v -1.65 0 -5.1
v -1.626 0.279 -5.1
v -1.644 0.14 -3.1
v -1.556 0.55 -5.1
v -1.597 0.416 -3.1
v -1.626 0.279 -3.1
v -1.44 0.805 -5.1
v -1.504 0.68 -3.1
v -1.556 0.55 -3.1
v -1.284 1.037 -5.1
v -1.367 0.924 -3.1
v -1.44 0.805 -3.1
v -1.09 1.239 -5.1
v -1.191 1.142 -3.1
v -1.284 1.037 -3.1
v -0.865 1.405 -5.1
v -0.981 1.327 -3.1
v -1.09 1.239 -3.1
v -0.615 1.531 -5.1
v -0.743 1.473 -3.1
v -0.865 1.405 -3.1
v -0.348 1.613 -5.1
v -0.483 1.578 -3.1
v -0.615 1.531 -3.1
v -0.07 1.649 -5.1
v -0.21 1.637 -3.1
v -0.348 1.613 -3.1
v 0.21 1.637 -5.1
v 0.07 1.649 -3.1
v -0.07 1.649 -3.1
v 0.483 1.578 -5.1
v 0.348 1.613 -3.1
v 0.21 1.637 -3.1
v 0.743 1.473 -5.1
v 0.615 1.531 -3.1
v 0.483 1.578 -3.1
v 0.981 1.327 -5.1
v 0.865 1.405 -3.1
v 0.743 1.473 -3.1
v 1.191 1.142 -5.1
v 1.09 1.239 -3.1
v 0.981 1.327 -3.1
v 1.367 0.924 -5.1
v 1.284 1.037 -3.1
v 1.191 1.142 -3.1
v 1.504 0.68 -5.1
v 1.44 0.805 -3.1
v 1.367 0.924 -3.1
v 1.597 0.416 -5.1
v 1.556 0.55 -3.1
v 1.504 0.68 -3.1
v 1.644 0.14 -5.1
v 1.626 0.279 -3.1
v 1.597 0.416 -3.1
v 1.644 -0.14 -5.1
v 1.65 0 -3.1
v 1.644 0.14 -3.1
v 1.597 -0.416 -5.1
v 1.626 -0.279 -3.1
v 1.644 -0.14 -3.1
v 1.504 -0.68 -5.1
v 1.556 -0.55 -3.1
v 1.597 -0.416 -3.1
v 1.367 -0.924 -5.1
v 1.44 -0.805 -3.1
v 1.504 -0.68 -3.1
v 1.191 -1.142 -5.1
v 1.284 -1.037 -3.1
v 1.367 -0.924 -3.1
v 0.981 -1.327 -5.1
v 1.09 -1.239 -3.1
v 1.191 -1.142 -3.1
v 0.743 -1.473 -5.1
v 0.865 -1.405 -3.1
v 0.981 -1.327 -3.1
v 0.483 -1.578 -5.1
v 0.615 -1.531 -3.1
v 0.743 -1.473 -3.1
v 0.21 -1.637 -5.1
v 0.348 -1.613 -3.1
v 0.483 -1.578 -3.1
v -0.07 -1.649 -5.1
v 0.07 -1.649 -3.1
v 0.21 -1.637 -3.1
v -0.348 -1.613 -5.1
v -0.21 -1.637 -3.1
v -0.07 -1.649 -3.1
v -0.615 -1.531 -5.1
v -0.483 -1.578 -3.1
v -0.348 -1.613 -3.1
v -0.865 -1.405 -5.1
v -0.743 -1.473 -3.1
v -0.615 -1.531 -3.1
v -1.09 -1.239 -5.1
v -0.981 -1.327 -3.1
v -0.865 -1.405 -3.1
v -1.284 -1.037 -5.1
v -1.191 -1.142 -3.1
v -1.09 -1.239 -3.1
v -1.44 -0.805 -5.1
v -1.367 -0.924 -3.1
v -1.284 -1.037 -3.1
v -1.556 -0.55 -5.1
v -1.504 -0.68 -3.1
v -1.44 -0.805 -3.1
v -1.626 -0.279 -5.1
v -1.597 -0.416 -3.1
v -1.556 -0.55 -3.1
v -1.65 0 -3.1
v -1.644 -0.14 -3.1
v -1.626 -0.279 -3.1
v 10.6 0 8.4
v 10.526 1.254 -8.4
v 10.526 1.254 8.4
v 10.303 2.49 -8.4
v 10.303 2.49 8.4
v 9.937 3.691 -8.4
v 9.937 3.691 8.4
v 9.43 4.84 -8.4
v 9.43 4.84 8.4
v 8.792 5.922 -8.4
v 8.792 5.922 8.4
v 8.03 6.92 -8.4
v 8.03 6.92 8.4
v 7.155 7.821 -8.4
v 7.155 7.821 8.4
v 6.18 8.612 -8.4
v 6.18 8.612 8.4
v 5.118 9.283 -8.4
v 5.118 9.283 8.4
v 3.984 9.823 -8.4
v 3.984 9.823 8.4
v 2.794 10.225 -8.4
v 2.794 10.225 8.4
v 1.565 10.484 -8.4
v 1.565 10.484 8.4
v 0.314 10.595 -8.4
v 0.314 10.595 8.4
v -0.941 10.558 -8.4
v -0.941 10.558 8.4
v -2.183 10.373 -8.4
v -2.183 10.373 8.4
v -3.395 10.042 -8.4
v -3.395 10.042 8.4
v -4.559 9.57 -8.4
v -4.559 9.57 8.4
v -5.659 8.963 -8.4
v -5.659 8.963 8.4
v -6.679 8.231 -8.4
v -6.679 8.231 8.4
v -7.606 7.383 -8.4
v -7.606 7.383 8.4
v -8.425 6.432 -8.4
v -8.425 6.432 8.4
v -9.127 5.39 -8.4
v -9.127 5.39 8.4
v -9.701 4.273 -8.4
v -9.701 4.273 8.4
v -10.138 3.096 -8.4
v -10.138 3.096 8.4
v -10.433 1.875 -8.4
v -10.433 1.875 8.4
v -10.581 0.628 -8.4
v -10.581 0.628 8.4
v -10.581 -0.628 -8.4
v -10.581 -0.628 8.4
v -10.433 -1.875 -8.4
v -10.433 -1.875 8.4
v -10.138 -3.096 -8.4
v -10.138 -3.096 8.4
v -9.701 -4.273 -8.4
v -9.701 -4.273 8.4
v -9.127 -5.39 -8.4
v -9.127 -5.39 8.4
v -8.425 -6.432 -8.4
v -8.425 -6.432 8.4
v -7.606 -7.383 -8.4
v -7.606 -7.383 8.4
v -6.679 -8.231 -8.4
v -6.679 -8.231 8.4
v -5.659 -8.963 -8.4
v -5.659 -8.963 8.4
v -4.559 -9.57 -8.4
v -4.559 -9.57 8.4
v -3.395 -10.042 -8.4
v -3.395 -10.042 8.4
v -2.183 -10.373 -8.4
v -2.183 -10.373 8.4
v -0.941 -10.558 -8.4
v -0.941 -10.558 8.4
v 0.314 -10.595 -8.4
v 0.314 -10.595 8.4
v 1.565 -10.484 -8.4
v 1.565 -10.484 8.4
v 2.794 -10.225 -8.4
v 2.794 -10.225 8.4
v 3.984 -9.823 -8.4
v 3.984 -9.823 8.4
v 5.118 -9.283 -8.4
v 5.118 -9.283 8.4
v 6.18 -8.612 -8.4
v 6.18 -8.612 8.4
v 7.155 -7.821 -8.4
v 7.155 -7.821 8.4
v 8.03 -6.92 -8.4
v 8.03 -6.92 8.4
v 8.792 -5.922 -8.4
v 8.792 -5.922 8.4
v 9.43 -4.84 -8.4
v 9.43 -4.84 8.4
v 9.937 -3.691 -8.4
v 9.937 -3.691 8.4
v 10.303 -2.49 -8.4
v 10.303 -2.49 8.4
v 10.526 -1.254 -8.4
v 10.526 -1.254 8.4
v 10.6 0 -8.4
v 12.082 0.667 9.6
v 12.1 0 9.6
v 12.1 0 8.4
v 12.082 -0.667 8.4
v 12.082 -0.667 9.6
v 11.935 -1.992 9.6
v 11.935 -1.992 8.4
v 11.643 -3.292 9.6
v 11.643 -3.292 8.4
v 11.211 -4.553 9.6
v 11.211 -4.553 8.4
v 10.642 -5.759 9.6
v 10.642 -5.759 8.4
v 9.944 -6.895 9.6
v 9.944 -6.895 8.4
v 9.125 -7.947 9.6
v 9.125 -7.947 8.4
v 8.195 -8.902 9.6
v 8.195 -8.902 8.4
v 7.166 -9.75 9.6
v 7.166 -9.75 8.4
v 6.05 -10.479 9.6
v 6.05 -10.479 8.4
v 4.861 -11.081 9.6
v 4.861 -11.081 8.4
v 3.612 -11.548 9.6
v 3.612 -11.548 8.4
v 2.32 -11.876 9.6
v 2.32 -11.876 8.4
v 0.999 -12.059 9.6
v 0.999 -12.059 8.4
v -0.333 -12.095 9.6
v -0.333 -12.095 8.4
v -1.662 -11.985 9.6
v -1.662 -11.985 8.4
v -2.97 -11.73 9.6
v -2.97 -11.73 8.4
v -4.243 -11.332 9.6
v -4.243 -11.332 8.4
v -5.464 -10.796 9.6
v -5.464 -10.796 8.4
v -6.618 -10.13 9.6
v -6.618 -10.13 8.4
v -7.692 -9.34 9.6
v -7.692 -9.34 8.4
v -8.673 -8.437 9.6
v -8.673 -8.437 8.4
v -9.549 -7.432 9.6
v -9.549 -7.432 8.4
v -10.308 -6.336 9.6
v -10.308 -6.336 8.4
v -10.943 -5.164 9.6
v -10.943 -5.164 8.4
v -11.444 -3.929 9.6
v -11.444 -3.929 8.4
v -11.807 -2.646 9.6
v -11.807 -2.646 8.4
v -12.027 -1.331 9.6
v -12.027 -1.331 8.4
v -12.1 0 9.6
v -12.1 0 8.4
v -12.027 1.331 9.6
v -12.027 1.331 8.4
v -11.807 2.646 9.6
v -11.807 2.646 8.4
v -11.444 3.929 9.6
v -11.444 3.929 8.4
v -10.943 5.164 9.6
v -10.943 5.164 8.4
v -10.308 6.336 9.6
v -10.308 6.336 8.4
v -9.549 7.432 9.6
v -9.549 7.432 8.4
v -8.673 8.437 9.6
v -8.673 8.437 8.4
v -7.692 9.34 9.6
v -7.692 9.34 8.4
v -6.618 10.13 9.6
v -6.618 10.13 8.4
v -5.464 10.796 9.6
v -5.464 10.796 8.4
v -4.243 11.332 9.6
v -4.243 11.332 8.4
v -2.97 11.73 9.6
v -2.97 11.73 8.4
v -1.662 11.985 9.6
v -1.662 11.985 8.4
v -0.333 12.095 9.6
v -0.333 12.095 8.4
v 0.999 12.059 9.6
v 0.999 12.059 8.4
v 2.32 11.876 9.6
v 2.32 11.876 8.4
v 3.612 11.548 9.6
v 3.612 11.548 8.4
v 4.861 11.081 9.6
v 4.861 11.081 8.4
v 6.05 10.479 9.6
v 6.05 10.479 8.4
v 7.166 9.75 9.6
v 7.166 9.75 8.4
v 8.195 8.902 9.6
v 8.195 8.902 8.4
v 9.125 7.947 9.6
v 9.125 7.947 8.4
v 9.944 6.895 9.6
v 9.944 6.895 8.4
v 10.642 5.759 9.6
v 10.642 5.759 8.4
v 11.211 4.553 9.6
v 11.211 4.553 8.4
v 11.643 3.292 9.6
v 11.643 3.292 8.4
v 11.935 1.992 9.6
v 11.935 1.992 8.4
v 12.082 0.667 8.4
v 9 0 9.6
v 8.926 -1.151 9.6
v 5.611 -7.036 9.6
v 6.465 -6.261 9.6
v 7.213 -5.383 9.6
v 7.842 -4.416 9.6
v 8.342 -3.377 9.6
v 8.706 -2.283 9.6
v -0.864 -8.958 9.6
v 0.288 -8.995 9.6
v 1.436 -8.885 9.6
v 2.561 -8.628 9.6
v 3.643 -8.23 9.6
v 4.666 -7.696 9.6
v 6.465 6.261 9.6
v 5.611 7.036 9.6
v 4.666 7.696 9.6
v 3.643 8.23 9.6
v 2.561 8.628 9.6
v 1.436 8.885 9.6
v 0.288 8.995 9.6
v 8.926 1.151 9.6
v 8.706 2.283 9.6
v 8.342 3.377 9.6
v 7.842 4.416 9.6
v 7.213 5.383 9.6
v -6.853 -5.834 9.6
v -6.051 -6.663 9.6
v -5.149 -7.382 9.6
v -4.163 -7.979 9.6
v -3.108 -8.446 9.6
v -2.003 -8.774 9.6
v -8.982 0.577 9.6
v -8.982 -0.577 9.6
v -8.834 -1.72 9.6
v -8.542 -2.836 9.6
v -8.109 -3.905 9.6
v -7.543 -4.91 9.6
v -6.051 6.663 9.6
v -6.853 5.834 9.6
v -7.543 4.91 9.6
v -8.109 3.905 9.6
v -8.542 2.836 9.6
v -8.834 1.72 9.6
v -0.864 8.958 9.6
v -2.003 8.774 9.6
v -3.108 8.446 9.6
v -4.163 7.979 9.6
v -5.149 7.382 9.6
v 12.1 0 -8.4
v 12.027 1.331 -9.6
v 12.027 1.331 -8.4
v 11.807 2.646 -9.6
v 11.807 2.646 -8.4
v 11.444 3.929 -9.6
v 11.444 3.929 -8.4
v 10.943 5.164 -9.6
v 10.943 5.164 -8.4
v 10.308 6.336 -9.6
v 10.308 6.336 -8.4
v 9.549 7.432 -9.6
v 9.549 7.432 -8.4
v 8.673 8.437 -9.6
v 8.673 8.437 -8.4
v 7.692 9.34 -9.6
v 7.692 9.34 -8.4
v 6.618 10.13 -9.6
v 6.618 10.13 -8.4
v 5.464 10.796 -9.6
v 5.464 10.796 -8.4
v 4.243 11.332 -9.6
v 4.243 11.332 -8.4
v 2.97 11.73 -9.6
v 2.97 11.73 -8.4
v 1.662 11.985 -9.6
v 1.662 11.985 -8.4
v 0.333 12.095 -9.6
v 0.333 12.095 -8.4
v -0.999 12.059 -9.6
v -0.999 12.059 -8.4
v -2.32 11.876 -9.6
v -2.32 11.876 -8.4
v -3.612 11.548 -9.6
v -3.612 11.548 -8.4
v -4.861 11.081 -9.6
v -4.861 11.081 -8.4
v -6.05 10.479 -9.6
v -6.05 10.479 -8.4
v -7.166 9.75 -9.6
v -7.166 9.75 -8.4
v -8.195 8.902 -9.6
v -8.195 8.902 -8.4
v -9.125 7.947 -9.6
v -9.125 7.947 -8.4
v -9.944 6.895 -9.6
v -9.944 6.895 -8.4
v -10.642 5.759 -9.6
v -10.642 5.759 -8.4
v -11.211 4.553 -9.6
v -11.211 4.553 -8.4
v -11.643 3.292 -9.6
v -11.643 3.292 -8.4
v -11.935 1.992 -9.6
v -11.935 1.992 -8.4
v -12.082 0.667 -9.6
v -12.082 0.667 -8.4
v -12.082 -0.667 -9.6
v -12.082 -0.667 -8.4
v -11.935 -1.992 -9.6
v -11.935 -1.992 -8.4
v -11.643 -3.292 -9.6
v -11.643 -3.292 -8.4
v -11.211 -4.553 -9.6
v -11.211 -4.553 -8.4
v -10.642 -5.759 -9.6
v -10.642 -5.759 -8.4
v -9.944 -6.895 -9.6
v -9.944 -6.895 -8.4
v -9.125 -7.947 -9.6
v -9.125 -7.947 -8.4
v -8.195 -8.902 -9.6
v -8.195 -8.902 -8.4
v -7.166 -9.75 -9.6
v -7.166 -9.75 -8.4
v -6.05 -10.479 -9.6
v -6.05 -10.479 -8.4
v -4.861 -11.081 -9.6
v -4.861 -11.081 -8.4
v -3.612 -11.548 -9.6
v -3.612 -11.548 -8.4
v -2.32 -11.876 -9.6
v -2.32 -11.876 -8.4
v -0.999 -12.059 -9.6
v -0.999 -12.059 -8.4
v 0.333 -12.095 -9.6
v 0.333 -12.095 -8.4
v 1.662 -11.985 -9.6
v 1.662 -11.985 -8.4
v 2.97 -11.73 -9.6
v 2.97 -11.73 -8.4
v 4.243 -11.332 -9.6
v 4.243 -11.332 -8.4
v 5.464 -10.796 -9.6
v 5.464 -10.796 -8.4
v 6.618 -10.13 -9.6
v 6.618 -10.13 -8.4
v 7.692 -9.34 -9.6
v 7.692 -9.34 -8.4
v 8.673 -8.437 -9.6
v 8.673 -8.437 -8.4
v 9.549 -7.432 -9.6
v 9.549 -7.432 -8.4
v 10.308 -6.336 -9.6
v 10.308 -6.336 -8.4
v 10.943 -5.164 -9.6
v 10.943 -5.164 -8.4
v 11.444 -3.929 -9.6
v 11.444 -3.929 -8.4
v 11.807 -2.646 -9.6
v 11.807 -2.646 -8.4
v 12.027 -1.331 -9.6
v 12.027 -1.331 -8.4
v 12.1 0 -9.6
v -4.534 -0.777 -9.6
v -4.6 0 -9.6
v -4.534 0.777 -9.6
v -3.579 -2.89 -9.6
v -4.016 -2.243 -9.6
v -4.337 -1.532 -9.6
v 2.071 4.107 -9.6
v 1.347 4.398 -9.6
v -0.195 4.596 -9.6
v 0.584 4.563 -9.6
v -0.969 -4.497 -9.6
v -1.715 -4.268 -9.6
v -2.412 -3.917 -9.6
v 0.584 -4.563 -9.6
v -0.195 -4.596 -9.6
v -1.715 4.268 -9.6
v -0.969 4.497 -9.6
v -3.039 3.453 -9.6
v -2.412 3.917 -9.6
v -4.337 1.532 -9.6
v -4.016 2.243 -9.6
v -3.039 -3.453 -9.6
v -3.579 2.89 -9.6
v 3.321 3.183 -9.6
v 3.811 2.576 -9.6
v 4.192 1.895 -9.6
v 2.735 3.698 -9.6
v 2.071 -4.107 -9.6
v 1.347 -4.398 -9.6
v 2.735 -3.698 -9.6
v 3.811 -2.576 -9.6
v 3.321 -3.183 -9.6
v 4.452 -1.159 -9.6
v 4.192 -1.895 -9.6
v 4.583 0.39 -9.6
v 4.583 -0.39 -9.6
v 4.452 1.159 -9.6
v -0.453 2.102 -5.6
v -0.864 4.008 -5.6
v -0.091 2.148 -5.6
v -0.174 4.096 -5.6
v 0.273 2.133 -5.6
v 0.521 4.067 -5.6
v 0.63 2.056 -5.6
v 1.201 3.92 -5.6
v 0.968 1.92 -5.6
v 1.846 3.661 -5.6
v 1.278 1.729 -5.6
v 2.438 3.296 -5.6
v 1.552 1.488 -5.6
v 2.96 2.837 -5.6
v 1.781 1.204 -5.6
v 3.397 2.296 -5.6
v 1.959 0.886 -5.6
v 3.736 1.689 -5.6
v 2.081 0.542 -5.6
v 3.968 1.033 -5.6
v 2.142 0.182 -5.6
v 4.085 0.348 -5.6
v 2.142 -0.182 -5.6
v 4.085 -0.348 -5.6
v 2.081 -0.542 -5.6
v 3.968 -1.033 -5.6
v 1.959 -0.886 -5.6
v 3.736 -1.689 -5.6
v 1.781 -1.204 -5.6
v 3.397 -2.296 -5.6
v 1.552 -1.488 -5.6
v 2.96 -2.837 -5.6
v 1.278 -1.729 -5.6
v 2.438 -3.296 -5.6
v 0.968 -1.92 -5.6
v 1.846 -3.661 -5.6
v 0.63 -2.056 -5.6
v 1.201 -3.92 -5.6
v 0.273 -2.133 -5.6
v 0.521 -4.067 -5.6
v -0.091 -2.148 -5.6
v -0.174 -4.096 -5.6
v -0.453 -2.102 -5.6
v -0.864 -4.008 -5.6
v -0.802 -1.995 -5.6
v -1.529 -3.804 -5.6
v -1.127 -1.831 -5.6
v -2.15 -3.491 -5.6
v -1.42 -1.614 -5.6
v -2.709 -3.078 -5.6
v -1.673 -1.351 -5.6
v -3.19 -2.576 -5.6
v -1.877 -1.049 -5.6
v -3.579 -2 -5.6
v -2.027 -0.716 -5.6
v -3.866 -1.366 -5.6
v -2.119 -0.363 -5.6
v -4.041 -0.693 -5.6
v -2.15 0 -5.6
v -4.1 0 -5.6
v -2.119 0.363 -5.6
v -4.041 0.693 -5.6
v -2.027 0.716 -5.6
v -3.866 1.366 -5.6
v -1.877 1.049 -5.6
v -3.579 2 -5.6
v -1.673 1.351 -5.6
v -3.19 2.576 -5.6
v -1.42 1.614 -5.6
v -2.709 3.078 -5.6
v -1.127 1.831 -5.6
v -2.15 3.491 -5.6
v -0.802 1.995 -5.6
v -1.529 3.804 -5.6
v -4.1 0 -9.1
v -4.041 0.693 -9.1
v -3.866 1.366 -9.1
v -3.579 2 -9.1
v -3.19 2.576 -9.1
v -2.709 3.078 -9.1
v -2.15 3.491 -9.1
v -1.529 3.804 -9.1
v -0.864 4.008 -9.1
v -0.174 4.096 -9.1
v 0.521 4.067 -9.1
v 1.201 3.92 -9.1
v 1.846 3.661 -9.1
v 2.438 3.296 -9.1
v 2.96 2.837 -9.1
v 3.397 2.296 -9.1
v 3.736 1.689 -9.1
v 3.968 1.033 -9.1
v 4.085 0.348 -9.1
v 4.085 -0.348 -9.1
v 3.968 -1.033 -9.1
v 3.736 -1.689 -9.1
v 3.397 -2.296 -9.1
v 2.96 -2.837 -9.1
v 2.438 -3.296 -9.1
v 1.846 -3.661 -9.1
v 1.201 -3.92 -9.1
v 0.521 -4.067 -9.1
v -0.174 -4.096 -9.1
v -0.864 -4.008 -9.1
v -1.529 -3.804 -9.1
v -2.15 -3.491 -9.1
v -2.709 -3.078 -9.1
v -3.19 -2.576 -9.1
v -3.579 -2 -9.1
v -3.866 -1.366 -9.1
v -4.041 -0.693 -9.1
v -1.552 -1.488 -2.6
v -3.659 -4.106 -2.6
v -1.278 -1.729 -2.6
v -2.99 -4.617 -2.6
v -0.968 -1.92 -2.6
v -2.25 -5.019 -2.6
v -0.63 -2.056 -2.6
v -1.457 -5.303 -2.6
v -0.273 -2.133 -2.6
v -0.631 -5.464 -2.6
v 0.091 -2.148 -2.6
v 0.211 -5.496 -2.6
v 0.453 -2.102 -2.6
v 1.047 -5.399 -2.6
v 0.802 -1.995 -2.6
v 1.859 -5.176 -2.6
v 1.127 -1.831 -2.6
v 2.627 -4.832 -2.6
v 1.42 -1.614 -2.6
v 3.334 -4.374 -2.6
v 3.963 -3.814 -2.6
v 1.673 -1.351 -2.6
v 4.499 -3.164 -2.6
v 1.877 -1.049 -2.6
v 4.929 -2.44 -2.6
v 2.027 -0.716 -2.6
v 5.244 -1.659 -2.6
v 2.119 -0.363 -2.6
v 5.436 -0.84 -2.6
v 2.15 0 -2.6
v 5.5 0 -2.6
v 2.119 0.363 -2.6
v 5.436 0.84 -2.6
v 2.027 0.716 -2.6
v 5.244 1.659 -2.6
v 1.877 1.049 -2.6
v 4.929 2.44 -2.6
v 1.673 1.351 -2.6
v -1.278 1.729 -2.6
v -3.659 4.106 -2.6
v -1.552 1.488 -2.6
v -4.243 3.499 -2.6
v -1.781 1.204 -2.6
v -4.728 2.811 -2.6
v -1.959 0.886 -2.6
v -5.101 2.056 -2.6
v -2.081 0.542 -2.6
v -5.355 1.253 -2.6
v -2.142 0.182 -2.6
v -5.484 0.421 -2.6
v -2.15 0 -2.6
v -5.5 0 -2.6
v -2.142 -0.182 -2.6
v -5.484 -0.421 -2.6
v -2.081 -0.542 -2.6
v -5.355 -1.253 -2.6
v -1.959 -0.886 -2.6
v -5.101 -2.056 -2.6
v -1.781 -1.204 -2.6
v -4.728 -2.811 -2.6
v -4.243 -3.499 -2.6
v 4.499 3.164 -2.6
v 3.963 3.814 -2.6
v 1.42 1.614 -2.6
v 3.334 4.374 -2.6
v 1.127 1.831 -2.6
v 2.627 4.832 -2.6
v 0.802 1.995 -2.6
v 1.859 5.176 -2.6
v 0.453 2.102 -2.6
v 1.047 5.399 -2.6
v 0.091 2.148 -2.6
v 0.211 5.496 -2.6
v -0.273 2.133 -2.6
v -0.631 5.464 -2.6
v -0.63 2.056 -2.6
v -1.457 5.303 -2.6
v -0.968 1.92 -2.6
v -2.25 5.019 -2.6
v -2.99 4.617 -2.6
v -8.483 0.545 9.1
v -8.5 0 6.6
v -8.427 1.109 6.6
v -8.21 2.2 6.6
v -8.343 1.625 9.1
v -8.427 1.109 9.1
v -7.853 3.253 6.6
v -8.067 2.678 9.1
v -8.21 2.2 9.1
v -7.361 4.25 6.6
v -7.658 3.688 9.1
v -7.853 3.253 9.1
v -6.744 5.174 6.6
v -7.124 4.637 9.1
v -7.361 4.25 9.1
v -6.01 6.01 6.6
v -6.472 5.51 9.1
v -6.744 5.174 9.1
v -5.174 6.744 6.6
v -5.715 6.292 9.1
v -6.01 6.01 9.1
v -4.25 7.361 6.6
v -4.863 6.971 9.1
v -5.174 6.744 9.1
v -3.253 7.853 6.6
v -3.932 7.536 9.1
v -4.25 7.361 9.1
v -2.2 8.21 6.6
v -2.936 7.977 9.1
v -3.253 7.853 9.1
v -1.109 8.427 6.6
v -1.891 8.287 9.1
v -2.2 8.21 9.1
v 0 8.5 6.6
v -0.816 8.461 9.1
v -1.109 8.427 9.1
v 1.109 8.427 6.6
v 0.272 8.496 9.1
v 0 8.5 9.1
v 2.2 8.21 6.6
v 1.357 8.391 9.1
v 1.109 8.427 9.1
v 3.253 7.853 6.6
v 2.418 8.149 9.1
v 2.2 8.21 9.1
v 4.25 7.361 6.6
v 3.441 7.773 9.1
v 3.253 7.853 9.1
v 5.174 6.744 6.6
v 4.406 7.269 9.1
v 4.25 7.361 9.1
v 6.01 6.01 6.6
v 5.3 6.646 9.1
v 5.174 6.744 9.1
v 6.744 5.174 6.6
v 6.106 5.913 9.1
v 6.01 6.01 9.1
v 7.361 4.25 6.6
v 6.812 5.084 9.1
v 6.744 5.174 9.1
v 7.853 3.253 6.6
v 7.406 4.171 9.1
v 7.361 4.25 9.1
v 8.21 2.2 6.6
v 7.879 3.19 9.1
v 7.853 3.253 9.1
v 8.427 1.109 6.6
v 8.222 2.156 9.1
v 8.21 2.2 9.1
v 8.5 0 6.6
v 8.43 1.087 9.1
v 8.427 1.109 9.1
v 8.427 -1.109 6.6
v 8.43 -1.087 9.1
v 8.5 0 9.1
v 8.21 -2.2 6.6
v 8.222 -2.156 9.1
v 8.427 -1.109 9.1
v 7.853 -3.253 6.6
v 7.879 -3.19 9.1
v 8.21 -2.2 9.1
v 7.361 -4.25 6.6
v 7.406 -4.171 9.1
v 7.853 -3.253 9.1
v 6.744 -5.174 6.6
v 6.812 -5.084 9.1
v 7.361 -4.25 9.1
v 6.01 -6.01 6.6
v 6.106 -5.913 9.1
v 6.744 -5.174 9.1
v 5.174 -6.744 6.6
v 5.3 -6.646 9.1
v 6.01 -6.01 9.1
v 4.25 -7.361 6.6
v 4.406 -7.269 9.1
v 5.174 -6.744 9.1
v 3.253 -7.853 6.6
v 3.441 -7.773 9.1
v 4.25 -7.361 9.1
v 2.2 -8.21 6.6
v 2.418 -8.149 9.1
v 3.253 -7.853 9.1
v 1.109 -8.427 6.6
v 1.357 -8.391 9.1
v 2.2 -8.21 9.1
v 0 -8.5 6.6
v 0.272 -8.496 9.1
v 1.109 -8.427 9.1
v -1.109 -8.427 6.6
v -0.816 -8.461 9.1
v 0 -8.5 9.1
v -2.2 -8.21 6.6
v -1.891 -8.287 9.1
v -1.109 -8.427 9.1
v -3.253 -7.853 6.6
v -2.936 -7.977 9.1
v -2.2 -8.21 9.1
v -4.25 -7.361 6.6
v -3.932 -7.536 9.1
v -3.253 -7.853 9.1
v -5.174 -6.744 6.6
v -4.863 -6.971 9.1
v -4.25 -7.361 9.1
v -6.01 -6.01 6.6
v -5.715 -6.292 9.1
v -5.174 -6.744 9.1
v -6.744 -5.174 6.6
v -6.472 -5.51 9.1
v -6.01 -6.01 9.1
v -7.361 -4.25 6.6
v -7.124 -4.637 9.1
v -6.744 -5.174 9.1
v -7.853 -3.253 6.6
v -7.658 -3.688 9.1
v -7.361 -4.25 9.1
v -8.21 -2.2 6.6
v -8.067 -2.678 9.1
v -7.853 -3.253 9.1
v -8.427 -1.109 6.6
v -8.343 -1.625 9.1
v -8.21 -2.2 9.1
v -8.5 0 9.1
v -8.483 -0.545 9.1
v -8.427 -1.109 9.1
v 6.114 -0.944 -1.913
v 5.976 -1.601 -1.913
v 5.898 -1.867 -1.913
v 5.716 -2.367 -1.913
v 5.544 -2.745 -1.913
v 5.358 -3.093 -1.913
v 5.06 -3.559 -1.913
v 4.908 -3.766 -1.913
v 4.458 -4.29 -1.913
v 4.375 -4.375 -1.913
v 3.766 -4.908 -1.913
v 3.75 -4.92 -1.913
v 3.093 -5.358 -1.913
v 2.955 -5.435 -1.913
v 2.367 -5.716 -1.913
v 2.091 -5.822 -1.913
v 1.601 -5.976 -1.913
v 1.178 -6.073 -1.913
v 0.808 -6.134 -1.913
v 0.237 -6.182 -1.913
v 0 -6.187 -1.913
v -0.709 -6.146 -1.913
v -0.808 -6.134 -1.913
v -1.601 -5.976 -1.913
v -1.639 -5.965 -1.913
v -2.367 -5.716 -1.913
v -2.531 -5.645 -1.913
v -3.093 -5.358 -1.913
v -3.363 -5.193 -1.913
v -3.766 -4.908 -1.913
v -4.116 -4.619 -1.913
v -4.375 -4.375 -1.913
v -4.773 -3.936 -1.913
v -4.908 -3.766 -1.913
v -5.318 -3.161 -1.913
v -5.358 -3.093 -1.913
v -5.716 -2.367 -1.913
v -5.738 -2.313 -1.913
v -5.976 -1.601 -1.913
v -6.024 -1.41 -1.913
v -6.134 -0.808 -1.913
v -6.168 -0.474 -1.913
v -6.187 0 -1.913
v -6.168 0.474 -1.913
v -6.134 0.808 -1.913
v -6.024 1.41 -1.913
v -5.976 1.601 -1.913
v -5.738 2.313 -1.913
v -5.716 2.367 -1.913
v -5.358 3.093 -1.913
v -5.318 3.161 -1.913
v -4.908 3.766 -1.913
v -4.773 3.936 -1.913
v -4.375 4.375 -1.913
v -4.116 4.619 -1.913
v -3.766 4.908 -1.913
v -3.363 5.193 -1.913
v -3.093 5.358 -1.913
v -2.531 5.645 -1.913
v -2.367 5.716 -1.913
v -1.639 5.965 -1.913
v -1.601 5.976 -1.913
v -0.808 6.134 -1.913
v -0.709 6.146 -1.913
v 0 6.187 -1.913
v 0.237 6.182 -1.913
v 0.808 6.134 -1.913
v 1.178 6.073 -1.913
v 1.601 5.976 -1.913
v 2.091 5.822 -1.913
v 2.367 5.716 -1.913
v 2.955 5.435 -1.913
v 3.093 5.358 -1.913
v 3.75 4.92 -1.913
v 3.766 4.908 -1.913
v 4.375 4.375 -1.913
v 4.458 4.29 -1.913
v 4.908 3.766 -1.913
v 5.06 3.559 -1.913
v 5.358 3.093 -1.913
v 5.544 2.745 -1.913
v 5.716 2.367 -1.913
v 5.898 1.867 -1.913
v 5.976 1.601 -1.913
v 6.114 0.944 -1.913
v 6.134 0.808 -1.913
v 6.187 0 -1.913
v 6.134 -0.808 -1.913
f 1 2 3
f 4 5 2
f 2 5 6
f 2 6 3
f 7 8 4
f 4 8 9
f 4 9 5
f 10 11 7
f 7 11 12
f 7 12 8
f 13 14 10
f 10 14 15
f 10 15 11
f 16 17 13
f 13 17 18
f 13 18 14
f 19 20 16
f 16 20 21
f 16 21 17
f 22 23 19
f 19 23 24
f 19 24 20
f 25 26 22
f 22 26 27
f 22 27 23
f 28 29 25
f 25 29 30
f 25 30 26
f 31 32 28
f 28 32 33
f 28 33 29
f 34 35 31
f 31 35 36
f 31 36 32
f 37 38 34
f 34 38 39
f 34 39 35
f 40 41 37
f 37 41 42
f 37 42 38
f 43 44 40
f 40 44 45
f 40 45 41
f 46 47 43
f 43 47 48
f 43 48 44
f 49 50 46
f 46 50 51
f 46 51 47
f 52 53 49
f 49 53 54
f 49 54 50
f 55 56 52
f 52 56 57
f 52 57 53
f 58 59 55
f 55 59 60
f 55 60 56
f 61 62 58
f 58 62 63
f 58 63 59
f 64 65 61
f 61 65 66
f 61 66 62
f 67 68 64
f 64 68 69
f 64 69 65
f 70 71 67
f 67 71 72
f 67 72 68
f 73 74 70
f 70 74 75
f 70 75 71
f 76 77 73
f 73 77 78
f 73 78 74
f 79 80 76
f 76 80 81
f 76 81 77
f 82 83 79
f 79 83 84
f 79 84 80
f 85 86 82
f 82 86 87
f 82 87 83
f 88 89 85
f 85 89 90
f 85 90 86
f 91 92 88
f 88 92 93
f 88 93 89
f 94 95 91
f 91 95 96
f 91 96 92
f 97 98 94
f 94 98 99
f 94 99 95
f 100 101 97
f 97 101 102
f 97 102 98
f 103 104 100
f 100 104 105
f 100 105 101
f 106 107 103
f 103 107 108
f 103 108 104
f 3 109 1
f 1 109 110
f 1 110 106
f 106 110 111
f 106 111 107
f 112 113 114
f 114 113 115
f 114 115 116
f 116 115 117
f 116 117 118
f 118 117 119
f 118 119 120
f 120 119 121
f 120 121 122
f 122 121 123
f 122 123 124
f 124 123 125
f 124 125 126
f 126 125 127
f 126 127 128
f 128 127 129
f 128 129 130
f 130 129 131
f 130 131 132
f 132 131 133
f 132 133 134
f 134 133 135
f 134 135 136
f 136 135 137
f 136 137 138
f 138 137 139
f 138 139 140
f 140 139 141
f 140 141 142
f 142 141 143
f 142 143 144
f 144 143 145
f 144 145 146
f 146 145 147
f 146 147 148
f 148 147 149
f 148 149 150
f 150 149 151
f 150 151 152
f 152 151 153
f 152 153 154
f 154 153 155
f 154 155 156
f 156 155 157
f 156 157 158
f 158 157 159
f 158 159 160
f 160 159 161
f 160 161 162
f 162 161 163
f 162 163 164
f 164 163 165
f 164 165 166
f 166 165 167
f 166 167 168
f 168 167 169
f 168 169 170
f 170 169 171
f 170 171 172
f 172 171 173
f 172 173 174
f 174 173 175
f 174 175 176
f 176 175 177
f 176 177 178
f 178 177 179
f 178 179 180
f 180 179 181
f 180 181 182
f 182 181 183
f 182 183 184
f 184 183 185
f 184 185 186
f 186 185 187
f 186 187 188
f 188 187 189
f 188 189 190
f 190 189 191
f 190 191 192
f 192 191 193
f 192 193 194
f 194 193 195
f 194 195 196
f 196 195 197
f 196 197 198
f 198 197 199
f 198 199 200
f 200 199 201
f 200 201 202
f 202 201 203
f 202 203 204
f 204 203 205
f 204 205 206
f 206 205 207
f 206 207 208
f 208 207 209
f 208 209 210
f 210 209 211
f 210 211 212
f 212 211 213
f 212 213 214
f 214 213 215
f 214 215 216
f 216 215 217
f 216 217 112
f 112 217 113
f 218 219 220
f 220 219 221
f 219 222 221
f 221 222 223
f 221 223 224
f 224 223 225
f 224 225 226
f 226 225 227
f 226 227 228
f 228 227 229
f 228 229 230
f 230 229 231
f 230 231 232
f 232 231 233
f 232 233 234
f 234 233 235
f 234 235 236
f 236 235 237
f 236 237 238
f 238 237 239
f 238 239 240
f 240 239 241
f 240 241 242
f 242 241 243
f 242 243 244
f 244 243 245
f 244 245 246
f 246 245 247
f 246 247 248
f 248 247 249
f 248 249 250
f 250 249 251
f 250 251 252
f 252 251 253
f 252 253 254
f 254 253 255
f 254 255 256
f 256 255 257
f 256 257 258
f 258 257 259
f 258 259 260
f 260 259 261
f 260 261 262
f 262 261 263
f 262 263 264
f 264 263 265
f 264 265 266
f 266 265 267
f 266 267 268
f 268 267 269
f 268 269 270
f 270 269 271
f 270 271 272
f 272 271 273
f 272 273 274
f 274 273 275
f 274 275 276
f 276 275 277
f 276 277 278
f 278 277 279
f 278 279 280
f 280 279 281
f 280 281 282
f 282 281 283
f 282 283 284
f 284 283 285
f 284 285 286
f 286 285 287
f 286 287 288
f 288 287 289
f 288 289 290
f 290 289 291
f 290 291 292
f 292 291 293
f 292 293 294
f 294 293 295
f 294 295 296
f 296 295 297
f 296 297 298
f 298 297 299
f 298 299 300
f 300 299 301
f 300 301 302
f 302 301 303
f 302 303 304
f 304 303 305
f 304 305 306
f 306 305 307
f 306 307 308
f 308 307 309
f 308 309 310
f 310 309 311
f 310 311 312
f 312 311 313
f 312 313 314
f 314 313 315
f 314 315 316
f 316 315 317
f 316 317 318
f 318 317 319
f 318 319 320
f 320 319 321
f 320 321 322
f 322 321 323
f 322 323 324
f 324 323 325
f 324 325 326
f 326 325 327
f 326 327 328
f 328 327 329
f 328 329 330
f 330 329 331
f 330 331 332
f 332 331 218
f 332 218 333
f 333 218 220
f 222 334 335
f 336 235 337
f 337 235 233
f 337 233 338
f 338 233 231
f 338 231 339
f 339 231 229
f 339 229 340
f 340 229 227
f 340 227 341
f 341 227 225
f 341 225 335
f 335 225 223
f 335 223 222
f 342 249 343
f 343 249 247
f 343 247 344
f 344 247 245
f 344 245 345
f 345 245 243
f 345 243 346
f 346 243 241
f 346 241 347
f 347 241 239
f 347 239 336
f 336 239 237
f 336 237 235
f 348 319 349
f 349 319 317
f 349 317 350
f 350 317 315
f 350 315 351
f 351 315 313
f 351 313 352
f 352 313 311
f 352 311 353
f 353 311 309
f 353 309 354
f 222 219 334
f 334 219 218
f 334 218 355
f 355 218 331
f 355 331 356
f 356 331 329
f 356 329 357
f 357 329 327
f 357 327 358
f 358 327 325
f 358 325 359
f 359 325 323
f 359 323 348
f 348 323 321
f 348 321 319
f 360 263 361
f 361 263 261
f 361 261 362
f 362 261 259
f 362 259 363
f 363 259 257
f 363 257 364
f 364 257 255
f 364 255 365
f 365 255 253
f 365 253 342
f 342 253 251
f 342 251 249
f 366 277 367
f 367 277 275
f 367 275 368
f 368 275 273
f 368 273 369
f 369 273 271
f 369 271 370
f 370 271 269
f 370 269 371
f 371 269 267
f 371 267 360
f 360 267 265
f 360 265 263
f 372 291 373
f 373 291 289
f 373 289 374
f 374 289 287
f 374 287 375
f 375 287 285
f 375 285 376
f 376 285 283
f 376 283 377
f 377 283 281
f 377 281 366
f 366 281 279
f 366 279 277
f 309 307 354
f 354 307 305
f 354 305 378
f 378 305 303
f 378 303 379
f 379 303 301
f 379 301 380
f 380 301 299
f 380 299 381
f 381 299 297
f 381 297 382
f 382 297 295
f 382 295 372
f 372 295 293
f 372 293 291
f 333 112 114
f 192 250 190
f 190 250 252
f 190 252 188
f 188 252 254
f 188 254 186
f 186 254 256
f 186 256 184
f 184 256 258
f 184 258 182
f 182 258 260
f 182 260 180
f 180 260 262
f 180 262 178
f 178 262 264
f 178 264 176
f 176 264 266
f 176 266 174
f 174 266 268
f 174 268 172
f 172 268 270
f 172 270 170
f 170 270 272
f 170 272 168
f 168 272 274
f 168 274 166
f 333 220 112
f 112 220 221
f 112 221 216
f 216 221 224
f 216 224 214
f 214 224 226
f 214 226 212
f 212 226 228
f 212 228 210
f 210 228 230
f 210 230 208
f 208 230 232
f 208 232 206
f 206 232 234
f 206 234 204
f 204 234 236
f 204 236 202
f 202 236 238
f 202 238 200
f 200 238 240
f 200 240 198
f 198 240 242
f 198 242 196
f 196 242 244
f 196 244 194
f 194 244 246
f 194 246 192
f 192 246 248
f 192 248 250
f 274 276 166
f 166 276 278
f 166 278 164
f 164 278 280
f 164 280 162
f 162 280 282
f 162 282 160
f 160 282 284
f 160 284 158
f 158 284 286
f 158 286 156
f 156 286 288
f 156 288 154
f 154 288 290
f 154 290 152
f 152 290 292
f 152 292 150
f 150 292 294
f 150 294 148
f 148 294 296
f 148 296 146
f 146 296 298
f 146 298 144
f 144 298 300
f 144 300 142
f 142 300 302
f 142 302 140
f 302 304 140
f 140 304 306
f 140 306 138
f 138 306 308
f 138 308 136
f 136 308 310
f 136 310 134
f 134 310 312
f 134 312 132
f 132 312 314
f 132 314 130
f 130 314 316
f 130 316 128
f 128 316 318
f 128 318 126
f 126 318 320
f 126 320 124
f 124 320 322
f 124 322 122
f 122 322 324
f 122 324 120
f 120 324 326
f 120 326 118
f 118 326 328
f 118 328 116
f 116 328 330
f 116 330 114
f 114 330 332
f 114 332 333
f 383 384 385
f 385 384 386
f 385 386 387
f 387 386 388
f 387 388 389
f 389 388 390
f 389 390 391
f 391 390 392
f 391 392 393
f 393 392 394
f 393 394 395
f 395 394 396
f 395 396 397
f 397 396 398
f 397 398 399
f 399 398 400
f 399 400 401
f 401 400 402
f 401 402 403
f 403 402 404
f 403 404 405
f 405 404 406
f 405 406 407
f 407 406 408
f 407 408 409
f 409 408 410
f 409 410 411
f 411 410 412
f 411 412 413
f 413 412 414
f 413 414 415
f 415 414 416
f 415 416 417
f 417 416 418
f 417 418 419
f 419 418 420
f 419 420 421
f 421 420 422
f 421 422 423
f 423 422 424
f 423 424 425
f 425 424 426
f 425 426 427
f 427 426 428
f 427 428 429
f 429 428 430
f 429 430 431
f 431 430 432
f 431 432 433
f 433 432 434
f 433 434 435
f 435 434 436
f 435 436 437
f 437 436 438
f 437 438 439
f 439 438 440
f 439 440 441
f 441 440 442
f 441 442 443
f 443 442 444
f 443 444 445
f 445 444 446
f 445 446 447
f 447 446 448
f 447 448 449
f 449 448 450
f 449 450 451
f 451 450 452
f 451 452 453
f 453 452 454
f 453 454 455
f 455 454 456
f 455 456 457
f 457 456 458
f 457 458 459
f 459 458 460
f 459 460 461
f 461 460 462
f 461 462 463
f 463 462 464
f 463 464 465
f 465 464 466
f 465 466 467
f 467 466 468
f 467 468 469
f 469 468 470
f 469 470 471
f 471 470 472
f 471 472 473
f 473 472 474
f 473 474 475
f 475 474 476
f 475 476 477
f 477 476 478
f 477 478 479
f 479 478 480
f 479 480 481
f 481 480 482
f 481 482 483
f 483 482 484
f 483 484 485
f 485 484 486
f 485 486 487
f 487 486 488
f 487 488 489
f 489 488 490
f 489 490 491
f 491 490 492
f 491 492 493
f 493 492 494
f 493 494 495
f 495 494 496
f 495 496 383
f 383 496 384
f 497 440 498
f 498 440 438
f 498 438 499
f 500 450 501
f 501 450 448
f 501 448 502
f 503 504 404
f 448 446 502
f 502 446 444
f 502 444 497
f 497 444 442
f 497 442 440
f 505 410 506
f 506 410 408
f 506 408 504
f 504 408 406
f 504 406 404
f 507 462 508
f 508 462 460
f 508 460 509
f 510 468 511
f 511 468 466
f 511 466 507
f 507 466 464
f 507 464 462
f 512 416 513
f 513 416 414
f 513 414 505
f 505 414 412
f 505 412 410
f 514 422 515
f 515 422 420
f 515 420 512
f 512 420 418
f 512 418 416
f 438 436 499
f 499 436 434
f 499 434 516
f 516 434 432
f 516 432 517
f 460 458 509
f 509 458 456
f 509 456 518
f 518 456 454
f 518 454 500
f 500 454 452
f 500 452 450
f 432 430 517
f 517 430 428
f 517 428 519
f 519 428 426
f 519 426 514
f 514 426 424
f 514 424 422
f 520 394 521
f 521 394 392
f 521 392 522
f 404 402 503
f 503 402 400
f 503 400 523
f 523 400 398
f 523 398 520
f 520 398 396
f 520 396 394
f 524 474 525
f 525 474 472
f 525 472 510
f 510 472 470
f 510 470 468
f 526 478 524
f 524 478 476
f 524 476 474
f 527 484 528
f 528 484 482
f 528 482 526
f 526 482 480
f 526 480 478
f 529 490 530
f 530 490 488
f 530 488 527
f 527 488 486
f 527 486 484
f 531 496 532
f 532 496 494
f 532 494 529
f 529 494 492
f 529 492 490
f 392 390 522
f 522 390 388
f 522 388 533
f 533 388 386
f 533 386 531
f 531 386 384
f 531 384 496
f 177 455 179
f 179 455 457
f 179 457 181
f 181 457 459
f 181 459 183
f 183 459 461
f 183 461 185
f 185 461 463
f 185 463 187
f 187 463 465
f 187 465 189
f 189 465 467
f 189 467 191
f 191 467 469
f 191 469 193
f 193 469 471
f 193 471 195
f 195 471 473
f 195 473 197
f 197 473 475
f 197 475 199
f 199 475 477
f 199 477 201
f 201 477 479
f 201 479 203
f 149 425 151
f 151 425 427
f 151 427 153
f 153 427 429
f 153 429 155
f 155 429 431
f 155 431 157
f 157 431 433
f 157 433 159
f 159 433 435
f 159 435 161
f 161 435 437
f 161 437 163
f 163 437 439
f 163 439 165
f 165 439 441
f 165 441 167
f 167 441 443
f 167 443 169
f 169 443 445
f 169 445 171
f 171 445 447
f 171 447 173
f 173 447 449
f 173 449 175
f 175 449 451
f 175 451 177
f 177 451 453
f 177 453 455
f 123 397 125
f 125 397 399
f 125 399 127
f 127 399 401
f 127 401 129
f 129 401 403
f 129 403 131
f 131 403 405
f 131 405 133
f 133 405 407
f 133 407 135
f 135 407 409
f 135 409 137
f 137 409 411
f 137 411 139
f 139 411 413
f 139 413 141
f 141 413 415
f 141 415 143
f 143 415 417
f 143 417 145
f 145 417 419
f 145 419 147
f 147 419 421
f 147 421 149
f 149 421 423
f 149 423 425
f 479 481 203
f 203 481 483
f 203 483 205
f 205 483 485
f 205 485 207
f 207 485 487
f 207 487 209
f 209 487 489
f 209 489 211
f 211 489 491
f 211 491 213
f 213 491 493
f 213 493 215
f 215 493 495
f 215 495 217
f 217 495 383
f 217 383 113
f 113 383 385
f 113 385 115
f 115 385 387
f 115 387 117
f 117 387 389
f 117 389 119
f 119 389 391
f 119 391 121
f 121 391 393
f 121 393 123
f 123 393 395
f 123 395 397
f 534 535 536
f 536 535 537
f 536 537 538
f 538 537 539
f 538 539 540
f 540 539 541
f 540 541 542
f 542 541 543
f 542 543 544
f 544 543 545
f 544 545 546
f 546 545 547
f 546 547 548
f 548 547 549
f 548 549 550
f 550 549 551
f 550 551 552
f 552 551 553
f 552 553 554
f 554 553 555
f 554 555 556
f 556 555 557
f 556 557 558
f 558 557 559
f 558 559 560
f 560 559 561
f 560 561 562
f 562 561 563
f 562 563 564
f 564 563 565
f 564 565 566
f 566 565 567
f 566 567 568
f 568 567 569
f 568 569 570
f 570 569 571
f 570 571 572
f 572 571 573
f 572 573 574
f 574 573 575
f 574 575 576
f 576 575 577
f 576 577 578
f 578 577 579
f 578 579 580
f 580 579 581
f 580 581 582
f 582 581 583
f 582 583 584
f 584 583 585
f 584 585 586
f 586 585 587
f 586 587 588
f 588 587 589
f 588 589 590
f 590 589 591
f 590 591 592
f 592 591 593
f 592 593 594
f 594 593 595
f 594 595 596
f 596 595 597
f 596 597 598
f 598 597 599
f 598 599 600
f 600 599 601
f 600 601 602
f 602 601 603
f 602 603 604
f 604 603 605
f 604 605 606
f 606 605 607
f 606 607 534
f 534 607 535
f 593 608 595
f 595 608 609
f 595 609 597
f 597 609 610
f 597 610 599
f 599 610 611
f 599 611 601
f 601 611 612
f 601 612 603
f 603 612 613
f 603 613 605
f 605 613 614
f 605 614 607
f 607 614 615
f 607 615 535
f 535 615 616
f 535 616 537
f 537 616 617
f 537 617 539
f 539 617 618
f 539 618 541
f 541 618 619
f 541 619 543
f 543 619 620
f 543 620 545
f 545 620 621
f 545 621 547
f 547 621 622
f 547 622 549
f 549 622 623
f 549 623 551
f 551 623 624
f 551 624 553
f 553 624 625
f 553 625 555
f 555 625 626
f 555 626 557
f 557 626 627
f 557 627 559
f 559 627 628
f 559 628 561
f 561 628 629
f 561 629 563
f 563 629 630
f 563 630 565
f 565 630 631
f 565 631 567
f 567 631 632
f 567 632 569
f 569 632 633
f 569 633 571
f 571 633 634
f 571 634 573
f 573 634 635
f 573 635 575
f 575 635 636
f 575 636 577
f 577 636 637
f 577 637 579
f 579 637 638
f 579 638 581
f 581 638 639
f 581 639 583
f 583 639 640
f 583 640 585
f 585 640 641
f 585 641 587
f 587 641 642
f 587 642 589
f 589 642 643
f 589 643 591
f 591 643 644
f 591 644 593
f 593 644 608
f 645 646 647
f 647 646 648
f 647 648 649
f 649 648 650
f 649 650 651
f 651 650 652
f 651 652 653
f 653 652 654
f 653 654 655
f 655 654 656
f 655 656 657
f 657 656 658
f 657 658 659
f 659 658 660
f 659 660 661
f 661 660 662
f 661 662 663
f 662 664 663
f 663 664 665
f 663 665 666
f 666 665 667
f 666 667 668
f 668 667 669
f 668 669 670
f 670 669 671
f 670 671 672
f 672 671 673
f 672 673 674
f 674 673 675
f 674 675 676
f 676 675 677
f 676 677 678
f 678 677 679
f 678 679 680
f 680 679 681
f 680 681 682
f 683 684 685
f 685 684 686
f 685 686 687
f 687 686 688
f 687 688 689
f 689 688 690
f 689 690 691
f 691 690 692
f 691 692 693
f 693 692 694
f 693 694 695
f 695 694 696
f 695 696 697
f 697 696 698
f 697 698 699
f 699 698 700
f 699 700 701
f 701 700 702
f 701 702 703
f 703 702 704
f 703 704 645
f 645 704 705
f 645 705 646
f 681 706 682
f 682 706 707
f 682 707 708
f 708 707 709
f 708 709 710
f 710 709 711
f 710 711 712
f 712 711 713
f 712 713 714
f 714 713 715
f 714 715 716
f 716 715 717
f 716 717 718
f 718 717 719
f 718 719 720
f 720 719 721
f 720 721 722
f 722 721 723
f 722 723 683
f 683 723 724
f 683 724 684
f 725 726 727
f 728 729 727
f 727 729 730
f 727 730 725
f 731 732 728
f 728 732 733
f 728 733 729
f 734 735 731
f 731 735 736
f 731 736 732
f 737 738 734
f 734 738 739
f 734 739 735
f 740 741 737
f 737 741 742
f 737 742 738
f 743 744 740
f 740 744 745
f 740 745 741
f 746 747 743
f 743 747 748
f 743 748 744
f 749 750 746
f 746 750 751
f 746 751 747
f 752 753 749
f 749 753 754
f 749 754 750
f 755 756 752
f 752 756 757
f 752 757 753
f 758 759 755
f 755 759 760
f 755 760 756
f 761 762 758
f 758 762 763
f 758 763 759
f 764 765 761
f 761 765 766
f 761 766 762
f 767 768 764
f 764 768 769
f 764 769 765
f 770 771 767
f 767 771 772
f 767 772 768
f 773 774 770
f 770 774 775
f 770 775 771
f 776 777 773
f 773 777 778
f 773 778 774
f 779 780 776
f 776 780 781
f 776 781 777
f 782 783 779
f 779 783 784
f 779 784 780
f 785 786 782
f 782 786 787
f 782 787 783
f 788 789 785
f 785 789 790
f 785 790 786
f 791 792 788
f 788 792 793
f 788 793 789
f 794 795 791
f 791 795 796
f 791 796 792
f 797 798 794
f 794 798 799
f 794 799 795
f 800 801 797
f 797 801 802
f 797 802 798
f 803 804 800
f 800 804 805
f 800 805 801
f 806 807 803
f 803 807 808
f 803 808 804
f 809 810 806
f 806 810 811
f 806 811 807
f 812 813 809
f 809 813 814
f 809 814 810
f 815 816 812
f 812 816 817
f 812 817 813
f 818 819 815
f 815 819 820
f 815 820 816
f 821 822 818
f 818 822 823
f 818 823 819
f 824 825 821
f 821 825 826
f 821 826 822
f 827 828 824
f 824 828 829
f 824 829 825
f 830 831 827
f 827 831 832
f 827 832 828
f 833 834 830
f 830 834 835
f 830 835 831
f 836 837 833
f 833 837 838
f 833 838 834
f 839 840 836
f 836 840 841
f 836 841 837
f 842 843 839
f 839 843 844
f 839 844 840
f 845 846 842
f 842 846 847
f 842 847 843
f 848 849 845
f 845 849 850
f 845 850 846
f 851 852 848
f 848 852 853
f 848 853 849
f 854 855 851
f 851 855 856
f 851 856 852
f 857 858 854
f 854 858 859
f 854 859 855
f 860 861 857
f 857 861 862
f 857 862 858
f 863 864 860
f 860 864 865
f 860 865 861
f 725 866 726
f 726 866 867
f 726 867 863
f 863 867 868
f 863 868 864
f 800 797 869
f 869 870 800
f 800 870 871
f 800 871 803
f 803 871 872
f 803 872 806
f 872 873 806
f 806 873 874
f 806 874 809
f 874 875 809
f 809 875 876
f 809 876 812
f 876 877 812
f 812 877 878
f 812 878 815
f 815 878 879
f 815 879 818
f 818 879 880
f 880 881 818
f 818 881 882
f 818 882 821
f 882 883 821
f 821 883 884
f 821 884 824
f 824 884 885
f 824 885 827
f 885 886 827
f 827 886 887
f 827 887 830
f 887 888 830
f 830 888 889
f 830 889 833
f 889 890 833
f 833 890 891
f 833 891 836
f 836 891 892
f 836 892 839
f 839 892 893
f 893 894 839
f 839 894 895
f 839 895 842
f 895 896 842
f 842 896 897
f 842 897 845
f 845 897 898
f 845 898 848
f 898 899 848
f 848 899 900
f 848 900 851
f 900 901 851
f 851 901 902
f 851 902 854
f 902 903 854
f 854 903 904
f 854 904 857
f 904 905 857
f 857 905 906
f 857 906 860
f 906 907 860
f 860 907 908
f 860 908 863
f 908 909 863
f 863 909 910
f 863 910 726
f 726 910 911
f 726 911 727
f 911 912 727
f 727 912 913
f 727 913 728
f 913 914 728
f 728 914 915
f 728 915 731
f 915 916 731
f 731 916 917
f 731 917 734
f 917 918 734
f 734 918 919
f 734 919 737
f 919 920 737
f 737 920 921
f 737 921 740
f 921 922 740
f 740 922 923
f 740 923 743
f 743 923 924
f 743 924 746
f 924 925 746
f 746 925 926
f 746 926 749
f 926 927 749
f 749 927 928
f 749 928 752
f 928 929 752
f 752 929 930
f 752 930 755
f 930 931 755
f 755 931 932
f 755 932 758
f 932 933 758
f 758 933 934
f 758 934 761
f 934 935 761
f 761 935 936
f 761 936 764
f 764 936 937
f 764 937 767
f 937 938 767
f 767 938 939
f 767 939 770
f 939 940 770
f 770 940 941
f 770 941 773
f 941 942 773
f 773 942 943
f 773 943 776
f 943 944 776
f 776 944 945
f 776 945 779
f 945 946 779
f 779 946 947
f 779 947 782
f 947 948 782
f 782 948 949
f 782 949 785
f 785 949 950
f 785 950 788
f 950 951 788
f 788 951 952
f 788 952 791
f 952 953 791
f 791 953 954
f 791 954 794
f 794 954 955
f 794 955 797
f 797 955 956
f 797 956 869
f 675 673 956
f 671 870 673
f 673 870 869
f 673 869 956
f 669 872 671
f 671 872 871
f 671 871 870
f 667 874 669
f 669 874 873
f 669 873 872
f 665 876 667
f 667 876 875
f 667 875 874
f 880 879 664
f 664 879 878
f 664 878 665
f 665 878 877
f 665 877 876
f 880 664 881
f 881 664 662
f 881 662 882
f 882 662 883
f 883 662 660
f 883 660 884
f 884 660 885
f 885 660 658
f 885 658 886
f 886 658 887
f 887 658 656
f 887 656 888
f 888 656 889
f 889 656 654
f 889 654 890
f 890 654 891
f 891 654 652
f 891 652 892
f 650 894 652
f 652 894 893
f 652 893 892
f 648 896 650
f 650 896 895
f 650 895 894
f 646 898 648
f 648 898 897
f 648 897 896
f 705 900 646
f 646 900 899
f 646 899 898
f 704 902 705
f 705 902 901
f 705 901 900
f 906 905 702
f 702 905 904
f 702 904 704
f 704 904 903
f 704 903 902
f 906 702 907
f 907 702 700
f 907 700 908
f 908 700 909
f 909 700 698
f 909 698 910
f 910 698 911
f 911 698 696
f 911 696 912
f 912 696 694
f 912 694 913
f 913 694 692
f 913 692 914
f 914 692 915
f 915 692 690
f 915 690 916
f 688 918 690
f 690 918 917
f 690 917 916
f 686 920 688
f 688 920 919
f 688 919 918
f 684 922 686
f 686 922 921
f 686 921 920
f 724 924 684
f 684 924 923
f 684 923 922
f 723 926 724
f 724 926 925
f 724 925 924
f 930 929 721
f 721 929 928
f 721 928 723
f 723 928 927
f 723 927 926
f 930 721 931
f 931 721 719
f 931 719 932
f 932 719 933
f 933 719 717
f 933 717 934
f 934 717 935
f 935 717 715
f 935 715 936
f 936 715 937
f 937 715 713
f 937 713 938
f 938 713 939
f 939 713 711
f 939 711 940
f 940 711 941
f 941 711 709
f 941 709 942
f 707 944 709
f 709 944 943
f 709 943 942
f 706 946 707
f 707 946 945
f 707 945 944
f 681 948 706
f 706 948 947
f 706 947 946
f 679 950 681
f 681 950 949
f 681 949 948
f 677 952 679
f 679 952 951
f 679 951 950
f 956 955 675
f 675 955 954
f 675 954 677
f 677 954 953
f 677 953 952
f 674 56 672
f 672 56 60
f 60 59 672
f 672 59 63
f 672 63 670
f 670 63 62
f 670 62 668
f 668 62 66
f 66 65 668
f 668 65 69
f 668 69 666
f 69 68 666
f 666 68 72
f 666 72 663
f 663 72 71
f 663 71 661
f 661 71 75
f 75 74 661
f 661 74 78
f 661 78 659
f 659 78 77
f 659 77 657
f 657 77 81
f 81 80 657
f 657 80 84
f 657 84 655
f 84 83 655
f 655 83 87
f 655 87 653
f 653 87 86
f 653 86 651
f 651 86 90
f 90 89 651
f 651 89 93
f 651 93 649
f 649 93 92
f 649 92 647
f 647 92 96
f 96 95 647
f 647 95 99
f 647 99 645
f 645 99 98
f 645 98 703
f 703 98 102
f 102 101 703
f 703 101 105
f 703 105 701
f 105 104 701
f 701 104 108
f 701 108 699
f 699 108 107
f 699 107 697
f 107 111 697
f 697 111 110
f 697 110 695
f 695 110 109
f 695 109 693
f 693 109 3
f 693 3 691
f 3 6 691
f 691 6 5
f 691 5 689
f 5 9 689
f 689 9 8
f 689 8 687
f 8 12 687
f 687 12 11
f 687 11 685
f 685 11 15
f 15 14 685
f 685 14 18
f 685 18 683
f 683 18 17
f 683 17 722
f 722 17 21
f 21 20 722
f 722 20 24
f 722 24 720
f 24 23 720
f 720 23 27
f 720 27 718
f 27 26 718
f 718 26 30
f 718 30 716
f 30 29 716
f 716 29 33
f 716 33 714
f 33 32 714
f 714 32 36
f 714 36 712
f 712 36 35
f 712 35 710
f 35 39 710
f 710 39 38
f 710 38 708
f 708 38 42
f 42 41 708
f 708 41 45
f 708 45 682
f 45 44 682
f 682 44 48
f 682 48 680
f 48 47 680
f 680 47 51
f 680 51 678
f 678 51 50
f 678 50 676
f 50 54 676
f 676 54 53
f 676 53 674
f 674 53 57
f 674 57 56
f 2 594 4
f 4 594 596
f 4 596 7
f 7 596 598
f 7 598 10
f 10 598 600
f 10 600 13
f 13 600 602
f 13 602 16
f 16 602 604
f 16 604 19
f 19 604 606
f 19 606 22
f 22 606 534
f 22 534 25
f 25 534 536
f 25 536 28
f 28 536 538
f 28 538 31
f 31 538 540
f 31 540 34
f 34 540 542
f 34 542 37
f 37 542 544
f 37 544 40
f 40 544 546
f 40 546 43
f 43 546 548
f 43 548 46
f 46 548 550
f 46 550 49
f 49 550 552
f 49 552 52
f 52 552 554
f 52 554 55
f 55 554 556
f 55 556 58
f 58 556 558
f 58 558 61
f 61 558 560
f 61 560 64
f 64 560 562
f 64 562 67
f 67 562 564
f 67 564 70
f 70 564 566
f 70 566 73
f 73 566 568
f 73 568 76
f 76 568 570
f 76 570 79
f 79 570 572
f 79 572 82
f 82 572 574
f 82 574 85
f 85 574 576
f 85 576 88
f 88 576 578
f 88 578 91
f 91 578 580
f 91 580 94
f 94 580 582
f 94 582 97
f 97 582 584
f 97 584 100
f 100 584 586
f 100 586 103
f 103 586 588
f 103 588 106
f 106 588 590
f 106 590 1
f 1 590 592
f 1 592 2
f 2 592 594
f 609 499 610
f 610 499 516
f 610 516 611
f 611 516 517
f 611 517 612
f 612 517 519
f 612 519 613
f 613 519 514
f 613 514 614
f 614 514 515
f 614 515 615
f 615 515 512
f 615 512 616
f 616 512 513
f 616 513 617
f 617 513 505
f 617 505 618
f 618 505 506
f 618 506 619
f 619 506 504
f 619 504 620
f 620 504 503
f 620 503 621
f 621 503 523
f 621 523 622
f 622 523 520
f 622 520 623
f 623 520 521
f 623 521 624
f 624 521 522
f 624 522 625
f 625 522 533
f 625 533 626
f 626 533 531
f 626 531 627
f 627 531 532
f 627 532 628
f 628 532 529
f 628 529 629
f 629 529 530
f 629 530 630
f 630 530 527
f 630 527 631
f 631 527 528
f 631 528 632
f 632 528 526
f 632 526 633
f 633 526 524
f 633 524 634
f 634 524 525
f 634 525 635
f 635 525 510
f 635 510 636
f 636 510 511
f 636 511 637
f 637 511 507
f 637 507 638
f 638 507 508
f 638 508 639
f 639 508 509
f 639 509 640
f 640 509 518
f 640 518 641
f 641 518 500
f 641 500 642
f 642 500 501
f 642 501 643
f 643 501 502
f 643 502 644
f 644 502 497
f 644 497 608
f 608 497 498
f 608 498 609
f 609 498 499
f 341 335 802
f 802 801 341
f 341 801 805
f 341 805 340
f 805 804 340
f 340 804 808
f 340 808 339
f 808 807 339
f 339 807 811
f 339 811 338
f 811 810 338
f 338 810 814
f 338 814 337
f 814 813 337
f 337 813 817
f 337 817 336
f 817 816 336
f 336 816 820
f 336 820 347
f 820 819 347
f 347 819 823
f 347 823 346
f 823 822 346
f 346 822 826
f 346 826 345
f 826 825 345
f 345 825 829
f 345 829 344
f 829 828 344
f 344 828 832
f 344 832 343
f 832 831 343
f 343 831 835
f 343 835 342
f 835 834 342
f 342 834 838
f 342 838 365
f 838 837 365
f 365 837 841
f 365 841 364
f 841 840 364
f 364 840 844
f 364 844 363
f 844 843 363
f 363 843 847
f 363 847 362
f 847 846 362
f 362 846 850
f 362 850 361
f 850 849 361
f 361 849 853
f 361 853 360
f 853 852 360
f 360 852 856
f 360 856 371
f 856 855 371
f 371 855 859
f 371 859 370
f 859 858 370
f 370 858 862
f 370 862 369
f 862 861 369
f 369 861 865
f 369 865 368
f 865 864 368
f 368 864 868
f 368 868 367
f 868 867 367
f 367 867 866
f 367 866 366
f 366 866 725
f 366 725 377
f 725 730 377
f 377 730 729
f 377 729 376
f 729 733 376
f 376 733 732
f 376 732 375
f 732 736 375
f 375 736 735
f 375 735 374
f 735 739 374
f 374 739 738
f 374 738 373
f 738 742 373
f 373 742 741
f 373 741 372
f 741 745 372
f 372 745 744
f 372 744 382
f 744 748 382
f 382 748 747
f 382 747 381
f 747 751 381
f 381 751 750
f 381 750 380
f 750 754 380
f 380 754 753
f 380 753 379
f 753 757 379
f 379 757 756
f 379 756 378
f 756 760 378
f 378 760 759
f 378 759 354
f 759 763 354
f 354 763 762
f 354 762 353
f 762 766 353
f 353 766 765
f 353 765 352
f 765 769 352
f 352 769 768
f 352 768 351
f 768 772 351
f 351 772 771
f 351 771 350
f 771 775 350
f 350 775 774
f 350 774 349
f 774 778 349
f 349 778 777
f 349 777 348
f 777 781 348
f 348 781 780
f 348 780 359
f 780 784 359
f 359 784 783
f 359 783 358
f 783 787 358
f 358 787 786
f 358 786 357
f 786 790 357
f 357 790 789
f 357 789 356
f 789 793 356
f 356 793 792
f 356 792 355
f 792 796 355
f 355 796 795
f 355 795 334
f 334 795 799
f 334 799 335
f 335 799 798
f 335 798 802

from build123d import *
from OCP.BRepFilletAPI import BRepFilletAPI_MakeChamfer

# Parameters (mm, degrees)
LAUFRAD_DEPTH             = 8.4
LAUFRAD_DEPTH_BACK        = 8.4
SKIZZE1_R                 = 10.6
SKIZZE2_R                 = 12.1
KETTENF_HRUNG_DEPTH       = 1.2
SKIZZE4_R                 = 1.65
SCHRAUBENBOHRUNG_M3_DEPTH = 26.718864672
SKIZZE3_R                 = 4.1
KUGELLAGERSITZ_DEPTH      = 4
FASE1_SIZE                = 0.5
FASE1_SIZE2               = 0.71146453


with BuildPart() as part:
    # Skizze1 → Laufrad (new, two sides: drawn at the far end of the back side and taken through both)
    with BuildSketch(Plane.XY.offset(-LAUFRAD_DEPTH_BACK)):
        Circle(SKIZZE1_R)
    extrude(amount=LAUFRAD_DEPTH + LAUFRAD_DEPTH_BACK)

    # Skizze2 → Kettenführung (add)
    with BuildSketch(Plane.XY.offset(8.4)):
        Circle(SKIZZE2_R)
    kettenf_hrung = extrude(amount=KETTENF_HRUNG_DEPTH)

    # Spiegeln Kettenführung: Kettenführung across plane
    add(kettenf_hrung.mirror(Plane.XY))

    # Skizze4 → SchraubenBohrung M3 (cut, through all)
    with BuildSketch(Plane(origin=(0, 0, -9.6), x_dir=(-1, 0, 0), z_dir=(0, 0, -1))):
        Circle(SKIZZE4_R)
    extrude(amount=-SCHRAUBENBOHRUNG_M3_DEPTH, mode=Mode.SUBTRACT)

    # Skizze3 → Kugellagersitz (cut)
    with BuildSketch(Plane(origin=(0, 0, -9.6), x_dir=(-1, 0, 0), z_dir=(0, 0, -1))):
        Circle(SKIZZE3_R)
    extrude(amount=-KUGELLAGERSITZ_DEPTH, mode=Mode.SUBTRACT)

    # Skizze5 → Schnitt-Rotation3 (revolve, cut)
    with BuildSketch(Plane(origin=(0, 0, 0), x_dir=(0, 0, -1), z_dir=(1, 0, 0))):
        Polygon((-9.6, 0), (-9.6, 8.5), (-6.6, 8.5), (2.6, 6), (2.6, 0), align=None)
    revolve(axis=Axis((0, 0, -8.4), (0, 0, 1)), mode=Mode.SUBTRACT)

    # Fase1: one chamfer whose edges measure the first distance from different faces: ONE call of the kernel's chamfer builder (chamfer() names one face for all edges)
    fase1_edges_1 = [part.edges().sort_by_distance(p)[0] for p in [
        (1.65, 0, -2.6),
        (1.65, 0, -5.6),
        (4.1, 0, -9.6),
        (0, -8.5, 9.6),
    ]]
    fase1_edges_2 = [part.edges().sort_by_distance(p)[0] for p in [
        (0, -6, -2.6),
    ]]
    fase1_side_2 = [part.faces().sort_by_distance(p)[0] for p in [
        (0, -5.830294373, -2.6),
    ]]
    fase1 = BRepFilletAPI_MakeChamfer(part.part.solid().wrapped)
    for e in fase1_edges_1:
        fase1.Add(FASE1_SIZE, e.wrapped)
    for e in fase1_edges_2:
        fase1.Add(FASE1_SIZE, FASE1_SIZE2, e.wrapped, fase1_side_2[0].wrapped)  # the first distance lies on this face
    add(Compound.cast(fase1.Shape()), mode=Mode.REPLACE)


solid = part.part
